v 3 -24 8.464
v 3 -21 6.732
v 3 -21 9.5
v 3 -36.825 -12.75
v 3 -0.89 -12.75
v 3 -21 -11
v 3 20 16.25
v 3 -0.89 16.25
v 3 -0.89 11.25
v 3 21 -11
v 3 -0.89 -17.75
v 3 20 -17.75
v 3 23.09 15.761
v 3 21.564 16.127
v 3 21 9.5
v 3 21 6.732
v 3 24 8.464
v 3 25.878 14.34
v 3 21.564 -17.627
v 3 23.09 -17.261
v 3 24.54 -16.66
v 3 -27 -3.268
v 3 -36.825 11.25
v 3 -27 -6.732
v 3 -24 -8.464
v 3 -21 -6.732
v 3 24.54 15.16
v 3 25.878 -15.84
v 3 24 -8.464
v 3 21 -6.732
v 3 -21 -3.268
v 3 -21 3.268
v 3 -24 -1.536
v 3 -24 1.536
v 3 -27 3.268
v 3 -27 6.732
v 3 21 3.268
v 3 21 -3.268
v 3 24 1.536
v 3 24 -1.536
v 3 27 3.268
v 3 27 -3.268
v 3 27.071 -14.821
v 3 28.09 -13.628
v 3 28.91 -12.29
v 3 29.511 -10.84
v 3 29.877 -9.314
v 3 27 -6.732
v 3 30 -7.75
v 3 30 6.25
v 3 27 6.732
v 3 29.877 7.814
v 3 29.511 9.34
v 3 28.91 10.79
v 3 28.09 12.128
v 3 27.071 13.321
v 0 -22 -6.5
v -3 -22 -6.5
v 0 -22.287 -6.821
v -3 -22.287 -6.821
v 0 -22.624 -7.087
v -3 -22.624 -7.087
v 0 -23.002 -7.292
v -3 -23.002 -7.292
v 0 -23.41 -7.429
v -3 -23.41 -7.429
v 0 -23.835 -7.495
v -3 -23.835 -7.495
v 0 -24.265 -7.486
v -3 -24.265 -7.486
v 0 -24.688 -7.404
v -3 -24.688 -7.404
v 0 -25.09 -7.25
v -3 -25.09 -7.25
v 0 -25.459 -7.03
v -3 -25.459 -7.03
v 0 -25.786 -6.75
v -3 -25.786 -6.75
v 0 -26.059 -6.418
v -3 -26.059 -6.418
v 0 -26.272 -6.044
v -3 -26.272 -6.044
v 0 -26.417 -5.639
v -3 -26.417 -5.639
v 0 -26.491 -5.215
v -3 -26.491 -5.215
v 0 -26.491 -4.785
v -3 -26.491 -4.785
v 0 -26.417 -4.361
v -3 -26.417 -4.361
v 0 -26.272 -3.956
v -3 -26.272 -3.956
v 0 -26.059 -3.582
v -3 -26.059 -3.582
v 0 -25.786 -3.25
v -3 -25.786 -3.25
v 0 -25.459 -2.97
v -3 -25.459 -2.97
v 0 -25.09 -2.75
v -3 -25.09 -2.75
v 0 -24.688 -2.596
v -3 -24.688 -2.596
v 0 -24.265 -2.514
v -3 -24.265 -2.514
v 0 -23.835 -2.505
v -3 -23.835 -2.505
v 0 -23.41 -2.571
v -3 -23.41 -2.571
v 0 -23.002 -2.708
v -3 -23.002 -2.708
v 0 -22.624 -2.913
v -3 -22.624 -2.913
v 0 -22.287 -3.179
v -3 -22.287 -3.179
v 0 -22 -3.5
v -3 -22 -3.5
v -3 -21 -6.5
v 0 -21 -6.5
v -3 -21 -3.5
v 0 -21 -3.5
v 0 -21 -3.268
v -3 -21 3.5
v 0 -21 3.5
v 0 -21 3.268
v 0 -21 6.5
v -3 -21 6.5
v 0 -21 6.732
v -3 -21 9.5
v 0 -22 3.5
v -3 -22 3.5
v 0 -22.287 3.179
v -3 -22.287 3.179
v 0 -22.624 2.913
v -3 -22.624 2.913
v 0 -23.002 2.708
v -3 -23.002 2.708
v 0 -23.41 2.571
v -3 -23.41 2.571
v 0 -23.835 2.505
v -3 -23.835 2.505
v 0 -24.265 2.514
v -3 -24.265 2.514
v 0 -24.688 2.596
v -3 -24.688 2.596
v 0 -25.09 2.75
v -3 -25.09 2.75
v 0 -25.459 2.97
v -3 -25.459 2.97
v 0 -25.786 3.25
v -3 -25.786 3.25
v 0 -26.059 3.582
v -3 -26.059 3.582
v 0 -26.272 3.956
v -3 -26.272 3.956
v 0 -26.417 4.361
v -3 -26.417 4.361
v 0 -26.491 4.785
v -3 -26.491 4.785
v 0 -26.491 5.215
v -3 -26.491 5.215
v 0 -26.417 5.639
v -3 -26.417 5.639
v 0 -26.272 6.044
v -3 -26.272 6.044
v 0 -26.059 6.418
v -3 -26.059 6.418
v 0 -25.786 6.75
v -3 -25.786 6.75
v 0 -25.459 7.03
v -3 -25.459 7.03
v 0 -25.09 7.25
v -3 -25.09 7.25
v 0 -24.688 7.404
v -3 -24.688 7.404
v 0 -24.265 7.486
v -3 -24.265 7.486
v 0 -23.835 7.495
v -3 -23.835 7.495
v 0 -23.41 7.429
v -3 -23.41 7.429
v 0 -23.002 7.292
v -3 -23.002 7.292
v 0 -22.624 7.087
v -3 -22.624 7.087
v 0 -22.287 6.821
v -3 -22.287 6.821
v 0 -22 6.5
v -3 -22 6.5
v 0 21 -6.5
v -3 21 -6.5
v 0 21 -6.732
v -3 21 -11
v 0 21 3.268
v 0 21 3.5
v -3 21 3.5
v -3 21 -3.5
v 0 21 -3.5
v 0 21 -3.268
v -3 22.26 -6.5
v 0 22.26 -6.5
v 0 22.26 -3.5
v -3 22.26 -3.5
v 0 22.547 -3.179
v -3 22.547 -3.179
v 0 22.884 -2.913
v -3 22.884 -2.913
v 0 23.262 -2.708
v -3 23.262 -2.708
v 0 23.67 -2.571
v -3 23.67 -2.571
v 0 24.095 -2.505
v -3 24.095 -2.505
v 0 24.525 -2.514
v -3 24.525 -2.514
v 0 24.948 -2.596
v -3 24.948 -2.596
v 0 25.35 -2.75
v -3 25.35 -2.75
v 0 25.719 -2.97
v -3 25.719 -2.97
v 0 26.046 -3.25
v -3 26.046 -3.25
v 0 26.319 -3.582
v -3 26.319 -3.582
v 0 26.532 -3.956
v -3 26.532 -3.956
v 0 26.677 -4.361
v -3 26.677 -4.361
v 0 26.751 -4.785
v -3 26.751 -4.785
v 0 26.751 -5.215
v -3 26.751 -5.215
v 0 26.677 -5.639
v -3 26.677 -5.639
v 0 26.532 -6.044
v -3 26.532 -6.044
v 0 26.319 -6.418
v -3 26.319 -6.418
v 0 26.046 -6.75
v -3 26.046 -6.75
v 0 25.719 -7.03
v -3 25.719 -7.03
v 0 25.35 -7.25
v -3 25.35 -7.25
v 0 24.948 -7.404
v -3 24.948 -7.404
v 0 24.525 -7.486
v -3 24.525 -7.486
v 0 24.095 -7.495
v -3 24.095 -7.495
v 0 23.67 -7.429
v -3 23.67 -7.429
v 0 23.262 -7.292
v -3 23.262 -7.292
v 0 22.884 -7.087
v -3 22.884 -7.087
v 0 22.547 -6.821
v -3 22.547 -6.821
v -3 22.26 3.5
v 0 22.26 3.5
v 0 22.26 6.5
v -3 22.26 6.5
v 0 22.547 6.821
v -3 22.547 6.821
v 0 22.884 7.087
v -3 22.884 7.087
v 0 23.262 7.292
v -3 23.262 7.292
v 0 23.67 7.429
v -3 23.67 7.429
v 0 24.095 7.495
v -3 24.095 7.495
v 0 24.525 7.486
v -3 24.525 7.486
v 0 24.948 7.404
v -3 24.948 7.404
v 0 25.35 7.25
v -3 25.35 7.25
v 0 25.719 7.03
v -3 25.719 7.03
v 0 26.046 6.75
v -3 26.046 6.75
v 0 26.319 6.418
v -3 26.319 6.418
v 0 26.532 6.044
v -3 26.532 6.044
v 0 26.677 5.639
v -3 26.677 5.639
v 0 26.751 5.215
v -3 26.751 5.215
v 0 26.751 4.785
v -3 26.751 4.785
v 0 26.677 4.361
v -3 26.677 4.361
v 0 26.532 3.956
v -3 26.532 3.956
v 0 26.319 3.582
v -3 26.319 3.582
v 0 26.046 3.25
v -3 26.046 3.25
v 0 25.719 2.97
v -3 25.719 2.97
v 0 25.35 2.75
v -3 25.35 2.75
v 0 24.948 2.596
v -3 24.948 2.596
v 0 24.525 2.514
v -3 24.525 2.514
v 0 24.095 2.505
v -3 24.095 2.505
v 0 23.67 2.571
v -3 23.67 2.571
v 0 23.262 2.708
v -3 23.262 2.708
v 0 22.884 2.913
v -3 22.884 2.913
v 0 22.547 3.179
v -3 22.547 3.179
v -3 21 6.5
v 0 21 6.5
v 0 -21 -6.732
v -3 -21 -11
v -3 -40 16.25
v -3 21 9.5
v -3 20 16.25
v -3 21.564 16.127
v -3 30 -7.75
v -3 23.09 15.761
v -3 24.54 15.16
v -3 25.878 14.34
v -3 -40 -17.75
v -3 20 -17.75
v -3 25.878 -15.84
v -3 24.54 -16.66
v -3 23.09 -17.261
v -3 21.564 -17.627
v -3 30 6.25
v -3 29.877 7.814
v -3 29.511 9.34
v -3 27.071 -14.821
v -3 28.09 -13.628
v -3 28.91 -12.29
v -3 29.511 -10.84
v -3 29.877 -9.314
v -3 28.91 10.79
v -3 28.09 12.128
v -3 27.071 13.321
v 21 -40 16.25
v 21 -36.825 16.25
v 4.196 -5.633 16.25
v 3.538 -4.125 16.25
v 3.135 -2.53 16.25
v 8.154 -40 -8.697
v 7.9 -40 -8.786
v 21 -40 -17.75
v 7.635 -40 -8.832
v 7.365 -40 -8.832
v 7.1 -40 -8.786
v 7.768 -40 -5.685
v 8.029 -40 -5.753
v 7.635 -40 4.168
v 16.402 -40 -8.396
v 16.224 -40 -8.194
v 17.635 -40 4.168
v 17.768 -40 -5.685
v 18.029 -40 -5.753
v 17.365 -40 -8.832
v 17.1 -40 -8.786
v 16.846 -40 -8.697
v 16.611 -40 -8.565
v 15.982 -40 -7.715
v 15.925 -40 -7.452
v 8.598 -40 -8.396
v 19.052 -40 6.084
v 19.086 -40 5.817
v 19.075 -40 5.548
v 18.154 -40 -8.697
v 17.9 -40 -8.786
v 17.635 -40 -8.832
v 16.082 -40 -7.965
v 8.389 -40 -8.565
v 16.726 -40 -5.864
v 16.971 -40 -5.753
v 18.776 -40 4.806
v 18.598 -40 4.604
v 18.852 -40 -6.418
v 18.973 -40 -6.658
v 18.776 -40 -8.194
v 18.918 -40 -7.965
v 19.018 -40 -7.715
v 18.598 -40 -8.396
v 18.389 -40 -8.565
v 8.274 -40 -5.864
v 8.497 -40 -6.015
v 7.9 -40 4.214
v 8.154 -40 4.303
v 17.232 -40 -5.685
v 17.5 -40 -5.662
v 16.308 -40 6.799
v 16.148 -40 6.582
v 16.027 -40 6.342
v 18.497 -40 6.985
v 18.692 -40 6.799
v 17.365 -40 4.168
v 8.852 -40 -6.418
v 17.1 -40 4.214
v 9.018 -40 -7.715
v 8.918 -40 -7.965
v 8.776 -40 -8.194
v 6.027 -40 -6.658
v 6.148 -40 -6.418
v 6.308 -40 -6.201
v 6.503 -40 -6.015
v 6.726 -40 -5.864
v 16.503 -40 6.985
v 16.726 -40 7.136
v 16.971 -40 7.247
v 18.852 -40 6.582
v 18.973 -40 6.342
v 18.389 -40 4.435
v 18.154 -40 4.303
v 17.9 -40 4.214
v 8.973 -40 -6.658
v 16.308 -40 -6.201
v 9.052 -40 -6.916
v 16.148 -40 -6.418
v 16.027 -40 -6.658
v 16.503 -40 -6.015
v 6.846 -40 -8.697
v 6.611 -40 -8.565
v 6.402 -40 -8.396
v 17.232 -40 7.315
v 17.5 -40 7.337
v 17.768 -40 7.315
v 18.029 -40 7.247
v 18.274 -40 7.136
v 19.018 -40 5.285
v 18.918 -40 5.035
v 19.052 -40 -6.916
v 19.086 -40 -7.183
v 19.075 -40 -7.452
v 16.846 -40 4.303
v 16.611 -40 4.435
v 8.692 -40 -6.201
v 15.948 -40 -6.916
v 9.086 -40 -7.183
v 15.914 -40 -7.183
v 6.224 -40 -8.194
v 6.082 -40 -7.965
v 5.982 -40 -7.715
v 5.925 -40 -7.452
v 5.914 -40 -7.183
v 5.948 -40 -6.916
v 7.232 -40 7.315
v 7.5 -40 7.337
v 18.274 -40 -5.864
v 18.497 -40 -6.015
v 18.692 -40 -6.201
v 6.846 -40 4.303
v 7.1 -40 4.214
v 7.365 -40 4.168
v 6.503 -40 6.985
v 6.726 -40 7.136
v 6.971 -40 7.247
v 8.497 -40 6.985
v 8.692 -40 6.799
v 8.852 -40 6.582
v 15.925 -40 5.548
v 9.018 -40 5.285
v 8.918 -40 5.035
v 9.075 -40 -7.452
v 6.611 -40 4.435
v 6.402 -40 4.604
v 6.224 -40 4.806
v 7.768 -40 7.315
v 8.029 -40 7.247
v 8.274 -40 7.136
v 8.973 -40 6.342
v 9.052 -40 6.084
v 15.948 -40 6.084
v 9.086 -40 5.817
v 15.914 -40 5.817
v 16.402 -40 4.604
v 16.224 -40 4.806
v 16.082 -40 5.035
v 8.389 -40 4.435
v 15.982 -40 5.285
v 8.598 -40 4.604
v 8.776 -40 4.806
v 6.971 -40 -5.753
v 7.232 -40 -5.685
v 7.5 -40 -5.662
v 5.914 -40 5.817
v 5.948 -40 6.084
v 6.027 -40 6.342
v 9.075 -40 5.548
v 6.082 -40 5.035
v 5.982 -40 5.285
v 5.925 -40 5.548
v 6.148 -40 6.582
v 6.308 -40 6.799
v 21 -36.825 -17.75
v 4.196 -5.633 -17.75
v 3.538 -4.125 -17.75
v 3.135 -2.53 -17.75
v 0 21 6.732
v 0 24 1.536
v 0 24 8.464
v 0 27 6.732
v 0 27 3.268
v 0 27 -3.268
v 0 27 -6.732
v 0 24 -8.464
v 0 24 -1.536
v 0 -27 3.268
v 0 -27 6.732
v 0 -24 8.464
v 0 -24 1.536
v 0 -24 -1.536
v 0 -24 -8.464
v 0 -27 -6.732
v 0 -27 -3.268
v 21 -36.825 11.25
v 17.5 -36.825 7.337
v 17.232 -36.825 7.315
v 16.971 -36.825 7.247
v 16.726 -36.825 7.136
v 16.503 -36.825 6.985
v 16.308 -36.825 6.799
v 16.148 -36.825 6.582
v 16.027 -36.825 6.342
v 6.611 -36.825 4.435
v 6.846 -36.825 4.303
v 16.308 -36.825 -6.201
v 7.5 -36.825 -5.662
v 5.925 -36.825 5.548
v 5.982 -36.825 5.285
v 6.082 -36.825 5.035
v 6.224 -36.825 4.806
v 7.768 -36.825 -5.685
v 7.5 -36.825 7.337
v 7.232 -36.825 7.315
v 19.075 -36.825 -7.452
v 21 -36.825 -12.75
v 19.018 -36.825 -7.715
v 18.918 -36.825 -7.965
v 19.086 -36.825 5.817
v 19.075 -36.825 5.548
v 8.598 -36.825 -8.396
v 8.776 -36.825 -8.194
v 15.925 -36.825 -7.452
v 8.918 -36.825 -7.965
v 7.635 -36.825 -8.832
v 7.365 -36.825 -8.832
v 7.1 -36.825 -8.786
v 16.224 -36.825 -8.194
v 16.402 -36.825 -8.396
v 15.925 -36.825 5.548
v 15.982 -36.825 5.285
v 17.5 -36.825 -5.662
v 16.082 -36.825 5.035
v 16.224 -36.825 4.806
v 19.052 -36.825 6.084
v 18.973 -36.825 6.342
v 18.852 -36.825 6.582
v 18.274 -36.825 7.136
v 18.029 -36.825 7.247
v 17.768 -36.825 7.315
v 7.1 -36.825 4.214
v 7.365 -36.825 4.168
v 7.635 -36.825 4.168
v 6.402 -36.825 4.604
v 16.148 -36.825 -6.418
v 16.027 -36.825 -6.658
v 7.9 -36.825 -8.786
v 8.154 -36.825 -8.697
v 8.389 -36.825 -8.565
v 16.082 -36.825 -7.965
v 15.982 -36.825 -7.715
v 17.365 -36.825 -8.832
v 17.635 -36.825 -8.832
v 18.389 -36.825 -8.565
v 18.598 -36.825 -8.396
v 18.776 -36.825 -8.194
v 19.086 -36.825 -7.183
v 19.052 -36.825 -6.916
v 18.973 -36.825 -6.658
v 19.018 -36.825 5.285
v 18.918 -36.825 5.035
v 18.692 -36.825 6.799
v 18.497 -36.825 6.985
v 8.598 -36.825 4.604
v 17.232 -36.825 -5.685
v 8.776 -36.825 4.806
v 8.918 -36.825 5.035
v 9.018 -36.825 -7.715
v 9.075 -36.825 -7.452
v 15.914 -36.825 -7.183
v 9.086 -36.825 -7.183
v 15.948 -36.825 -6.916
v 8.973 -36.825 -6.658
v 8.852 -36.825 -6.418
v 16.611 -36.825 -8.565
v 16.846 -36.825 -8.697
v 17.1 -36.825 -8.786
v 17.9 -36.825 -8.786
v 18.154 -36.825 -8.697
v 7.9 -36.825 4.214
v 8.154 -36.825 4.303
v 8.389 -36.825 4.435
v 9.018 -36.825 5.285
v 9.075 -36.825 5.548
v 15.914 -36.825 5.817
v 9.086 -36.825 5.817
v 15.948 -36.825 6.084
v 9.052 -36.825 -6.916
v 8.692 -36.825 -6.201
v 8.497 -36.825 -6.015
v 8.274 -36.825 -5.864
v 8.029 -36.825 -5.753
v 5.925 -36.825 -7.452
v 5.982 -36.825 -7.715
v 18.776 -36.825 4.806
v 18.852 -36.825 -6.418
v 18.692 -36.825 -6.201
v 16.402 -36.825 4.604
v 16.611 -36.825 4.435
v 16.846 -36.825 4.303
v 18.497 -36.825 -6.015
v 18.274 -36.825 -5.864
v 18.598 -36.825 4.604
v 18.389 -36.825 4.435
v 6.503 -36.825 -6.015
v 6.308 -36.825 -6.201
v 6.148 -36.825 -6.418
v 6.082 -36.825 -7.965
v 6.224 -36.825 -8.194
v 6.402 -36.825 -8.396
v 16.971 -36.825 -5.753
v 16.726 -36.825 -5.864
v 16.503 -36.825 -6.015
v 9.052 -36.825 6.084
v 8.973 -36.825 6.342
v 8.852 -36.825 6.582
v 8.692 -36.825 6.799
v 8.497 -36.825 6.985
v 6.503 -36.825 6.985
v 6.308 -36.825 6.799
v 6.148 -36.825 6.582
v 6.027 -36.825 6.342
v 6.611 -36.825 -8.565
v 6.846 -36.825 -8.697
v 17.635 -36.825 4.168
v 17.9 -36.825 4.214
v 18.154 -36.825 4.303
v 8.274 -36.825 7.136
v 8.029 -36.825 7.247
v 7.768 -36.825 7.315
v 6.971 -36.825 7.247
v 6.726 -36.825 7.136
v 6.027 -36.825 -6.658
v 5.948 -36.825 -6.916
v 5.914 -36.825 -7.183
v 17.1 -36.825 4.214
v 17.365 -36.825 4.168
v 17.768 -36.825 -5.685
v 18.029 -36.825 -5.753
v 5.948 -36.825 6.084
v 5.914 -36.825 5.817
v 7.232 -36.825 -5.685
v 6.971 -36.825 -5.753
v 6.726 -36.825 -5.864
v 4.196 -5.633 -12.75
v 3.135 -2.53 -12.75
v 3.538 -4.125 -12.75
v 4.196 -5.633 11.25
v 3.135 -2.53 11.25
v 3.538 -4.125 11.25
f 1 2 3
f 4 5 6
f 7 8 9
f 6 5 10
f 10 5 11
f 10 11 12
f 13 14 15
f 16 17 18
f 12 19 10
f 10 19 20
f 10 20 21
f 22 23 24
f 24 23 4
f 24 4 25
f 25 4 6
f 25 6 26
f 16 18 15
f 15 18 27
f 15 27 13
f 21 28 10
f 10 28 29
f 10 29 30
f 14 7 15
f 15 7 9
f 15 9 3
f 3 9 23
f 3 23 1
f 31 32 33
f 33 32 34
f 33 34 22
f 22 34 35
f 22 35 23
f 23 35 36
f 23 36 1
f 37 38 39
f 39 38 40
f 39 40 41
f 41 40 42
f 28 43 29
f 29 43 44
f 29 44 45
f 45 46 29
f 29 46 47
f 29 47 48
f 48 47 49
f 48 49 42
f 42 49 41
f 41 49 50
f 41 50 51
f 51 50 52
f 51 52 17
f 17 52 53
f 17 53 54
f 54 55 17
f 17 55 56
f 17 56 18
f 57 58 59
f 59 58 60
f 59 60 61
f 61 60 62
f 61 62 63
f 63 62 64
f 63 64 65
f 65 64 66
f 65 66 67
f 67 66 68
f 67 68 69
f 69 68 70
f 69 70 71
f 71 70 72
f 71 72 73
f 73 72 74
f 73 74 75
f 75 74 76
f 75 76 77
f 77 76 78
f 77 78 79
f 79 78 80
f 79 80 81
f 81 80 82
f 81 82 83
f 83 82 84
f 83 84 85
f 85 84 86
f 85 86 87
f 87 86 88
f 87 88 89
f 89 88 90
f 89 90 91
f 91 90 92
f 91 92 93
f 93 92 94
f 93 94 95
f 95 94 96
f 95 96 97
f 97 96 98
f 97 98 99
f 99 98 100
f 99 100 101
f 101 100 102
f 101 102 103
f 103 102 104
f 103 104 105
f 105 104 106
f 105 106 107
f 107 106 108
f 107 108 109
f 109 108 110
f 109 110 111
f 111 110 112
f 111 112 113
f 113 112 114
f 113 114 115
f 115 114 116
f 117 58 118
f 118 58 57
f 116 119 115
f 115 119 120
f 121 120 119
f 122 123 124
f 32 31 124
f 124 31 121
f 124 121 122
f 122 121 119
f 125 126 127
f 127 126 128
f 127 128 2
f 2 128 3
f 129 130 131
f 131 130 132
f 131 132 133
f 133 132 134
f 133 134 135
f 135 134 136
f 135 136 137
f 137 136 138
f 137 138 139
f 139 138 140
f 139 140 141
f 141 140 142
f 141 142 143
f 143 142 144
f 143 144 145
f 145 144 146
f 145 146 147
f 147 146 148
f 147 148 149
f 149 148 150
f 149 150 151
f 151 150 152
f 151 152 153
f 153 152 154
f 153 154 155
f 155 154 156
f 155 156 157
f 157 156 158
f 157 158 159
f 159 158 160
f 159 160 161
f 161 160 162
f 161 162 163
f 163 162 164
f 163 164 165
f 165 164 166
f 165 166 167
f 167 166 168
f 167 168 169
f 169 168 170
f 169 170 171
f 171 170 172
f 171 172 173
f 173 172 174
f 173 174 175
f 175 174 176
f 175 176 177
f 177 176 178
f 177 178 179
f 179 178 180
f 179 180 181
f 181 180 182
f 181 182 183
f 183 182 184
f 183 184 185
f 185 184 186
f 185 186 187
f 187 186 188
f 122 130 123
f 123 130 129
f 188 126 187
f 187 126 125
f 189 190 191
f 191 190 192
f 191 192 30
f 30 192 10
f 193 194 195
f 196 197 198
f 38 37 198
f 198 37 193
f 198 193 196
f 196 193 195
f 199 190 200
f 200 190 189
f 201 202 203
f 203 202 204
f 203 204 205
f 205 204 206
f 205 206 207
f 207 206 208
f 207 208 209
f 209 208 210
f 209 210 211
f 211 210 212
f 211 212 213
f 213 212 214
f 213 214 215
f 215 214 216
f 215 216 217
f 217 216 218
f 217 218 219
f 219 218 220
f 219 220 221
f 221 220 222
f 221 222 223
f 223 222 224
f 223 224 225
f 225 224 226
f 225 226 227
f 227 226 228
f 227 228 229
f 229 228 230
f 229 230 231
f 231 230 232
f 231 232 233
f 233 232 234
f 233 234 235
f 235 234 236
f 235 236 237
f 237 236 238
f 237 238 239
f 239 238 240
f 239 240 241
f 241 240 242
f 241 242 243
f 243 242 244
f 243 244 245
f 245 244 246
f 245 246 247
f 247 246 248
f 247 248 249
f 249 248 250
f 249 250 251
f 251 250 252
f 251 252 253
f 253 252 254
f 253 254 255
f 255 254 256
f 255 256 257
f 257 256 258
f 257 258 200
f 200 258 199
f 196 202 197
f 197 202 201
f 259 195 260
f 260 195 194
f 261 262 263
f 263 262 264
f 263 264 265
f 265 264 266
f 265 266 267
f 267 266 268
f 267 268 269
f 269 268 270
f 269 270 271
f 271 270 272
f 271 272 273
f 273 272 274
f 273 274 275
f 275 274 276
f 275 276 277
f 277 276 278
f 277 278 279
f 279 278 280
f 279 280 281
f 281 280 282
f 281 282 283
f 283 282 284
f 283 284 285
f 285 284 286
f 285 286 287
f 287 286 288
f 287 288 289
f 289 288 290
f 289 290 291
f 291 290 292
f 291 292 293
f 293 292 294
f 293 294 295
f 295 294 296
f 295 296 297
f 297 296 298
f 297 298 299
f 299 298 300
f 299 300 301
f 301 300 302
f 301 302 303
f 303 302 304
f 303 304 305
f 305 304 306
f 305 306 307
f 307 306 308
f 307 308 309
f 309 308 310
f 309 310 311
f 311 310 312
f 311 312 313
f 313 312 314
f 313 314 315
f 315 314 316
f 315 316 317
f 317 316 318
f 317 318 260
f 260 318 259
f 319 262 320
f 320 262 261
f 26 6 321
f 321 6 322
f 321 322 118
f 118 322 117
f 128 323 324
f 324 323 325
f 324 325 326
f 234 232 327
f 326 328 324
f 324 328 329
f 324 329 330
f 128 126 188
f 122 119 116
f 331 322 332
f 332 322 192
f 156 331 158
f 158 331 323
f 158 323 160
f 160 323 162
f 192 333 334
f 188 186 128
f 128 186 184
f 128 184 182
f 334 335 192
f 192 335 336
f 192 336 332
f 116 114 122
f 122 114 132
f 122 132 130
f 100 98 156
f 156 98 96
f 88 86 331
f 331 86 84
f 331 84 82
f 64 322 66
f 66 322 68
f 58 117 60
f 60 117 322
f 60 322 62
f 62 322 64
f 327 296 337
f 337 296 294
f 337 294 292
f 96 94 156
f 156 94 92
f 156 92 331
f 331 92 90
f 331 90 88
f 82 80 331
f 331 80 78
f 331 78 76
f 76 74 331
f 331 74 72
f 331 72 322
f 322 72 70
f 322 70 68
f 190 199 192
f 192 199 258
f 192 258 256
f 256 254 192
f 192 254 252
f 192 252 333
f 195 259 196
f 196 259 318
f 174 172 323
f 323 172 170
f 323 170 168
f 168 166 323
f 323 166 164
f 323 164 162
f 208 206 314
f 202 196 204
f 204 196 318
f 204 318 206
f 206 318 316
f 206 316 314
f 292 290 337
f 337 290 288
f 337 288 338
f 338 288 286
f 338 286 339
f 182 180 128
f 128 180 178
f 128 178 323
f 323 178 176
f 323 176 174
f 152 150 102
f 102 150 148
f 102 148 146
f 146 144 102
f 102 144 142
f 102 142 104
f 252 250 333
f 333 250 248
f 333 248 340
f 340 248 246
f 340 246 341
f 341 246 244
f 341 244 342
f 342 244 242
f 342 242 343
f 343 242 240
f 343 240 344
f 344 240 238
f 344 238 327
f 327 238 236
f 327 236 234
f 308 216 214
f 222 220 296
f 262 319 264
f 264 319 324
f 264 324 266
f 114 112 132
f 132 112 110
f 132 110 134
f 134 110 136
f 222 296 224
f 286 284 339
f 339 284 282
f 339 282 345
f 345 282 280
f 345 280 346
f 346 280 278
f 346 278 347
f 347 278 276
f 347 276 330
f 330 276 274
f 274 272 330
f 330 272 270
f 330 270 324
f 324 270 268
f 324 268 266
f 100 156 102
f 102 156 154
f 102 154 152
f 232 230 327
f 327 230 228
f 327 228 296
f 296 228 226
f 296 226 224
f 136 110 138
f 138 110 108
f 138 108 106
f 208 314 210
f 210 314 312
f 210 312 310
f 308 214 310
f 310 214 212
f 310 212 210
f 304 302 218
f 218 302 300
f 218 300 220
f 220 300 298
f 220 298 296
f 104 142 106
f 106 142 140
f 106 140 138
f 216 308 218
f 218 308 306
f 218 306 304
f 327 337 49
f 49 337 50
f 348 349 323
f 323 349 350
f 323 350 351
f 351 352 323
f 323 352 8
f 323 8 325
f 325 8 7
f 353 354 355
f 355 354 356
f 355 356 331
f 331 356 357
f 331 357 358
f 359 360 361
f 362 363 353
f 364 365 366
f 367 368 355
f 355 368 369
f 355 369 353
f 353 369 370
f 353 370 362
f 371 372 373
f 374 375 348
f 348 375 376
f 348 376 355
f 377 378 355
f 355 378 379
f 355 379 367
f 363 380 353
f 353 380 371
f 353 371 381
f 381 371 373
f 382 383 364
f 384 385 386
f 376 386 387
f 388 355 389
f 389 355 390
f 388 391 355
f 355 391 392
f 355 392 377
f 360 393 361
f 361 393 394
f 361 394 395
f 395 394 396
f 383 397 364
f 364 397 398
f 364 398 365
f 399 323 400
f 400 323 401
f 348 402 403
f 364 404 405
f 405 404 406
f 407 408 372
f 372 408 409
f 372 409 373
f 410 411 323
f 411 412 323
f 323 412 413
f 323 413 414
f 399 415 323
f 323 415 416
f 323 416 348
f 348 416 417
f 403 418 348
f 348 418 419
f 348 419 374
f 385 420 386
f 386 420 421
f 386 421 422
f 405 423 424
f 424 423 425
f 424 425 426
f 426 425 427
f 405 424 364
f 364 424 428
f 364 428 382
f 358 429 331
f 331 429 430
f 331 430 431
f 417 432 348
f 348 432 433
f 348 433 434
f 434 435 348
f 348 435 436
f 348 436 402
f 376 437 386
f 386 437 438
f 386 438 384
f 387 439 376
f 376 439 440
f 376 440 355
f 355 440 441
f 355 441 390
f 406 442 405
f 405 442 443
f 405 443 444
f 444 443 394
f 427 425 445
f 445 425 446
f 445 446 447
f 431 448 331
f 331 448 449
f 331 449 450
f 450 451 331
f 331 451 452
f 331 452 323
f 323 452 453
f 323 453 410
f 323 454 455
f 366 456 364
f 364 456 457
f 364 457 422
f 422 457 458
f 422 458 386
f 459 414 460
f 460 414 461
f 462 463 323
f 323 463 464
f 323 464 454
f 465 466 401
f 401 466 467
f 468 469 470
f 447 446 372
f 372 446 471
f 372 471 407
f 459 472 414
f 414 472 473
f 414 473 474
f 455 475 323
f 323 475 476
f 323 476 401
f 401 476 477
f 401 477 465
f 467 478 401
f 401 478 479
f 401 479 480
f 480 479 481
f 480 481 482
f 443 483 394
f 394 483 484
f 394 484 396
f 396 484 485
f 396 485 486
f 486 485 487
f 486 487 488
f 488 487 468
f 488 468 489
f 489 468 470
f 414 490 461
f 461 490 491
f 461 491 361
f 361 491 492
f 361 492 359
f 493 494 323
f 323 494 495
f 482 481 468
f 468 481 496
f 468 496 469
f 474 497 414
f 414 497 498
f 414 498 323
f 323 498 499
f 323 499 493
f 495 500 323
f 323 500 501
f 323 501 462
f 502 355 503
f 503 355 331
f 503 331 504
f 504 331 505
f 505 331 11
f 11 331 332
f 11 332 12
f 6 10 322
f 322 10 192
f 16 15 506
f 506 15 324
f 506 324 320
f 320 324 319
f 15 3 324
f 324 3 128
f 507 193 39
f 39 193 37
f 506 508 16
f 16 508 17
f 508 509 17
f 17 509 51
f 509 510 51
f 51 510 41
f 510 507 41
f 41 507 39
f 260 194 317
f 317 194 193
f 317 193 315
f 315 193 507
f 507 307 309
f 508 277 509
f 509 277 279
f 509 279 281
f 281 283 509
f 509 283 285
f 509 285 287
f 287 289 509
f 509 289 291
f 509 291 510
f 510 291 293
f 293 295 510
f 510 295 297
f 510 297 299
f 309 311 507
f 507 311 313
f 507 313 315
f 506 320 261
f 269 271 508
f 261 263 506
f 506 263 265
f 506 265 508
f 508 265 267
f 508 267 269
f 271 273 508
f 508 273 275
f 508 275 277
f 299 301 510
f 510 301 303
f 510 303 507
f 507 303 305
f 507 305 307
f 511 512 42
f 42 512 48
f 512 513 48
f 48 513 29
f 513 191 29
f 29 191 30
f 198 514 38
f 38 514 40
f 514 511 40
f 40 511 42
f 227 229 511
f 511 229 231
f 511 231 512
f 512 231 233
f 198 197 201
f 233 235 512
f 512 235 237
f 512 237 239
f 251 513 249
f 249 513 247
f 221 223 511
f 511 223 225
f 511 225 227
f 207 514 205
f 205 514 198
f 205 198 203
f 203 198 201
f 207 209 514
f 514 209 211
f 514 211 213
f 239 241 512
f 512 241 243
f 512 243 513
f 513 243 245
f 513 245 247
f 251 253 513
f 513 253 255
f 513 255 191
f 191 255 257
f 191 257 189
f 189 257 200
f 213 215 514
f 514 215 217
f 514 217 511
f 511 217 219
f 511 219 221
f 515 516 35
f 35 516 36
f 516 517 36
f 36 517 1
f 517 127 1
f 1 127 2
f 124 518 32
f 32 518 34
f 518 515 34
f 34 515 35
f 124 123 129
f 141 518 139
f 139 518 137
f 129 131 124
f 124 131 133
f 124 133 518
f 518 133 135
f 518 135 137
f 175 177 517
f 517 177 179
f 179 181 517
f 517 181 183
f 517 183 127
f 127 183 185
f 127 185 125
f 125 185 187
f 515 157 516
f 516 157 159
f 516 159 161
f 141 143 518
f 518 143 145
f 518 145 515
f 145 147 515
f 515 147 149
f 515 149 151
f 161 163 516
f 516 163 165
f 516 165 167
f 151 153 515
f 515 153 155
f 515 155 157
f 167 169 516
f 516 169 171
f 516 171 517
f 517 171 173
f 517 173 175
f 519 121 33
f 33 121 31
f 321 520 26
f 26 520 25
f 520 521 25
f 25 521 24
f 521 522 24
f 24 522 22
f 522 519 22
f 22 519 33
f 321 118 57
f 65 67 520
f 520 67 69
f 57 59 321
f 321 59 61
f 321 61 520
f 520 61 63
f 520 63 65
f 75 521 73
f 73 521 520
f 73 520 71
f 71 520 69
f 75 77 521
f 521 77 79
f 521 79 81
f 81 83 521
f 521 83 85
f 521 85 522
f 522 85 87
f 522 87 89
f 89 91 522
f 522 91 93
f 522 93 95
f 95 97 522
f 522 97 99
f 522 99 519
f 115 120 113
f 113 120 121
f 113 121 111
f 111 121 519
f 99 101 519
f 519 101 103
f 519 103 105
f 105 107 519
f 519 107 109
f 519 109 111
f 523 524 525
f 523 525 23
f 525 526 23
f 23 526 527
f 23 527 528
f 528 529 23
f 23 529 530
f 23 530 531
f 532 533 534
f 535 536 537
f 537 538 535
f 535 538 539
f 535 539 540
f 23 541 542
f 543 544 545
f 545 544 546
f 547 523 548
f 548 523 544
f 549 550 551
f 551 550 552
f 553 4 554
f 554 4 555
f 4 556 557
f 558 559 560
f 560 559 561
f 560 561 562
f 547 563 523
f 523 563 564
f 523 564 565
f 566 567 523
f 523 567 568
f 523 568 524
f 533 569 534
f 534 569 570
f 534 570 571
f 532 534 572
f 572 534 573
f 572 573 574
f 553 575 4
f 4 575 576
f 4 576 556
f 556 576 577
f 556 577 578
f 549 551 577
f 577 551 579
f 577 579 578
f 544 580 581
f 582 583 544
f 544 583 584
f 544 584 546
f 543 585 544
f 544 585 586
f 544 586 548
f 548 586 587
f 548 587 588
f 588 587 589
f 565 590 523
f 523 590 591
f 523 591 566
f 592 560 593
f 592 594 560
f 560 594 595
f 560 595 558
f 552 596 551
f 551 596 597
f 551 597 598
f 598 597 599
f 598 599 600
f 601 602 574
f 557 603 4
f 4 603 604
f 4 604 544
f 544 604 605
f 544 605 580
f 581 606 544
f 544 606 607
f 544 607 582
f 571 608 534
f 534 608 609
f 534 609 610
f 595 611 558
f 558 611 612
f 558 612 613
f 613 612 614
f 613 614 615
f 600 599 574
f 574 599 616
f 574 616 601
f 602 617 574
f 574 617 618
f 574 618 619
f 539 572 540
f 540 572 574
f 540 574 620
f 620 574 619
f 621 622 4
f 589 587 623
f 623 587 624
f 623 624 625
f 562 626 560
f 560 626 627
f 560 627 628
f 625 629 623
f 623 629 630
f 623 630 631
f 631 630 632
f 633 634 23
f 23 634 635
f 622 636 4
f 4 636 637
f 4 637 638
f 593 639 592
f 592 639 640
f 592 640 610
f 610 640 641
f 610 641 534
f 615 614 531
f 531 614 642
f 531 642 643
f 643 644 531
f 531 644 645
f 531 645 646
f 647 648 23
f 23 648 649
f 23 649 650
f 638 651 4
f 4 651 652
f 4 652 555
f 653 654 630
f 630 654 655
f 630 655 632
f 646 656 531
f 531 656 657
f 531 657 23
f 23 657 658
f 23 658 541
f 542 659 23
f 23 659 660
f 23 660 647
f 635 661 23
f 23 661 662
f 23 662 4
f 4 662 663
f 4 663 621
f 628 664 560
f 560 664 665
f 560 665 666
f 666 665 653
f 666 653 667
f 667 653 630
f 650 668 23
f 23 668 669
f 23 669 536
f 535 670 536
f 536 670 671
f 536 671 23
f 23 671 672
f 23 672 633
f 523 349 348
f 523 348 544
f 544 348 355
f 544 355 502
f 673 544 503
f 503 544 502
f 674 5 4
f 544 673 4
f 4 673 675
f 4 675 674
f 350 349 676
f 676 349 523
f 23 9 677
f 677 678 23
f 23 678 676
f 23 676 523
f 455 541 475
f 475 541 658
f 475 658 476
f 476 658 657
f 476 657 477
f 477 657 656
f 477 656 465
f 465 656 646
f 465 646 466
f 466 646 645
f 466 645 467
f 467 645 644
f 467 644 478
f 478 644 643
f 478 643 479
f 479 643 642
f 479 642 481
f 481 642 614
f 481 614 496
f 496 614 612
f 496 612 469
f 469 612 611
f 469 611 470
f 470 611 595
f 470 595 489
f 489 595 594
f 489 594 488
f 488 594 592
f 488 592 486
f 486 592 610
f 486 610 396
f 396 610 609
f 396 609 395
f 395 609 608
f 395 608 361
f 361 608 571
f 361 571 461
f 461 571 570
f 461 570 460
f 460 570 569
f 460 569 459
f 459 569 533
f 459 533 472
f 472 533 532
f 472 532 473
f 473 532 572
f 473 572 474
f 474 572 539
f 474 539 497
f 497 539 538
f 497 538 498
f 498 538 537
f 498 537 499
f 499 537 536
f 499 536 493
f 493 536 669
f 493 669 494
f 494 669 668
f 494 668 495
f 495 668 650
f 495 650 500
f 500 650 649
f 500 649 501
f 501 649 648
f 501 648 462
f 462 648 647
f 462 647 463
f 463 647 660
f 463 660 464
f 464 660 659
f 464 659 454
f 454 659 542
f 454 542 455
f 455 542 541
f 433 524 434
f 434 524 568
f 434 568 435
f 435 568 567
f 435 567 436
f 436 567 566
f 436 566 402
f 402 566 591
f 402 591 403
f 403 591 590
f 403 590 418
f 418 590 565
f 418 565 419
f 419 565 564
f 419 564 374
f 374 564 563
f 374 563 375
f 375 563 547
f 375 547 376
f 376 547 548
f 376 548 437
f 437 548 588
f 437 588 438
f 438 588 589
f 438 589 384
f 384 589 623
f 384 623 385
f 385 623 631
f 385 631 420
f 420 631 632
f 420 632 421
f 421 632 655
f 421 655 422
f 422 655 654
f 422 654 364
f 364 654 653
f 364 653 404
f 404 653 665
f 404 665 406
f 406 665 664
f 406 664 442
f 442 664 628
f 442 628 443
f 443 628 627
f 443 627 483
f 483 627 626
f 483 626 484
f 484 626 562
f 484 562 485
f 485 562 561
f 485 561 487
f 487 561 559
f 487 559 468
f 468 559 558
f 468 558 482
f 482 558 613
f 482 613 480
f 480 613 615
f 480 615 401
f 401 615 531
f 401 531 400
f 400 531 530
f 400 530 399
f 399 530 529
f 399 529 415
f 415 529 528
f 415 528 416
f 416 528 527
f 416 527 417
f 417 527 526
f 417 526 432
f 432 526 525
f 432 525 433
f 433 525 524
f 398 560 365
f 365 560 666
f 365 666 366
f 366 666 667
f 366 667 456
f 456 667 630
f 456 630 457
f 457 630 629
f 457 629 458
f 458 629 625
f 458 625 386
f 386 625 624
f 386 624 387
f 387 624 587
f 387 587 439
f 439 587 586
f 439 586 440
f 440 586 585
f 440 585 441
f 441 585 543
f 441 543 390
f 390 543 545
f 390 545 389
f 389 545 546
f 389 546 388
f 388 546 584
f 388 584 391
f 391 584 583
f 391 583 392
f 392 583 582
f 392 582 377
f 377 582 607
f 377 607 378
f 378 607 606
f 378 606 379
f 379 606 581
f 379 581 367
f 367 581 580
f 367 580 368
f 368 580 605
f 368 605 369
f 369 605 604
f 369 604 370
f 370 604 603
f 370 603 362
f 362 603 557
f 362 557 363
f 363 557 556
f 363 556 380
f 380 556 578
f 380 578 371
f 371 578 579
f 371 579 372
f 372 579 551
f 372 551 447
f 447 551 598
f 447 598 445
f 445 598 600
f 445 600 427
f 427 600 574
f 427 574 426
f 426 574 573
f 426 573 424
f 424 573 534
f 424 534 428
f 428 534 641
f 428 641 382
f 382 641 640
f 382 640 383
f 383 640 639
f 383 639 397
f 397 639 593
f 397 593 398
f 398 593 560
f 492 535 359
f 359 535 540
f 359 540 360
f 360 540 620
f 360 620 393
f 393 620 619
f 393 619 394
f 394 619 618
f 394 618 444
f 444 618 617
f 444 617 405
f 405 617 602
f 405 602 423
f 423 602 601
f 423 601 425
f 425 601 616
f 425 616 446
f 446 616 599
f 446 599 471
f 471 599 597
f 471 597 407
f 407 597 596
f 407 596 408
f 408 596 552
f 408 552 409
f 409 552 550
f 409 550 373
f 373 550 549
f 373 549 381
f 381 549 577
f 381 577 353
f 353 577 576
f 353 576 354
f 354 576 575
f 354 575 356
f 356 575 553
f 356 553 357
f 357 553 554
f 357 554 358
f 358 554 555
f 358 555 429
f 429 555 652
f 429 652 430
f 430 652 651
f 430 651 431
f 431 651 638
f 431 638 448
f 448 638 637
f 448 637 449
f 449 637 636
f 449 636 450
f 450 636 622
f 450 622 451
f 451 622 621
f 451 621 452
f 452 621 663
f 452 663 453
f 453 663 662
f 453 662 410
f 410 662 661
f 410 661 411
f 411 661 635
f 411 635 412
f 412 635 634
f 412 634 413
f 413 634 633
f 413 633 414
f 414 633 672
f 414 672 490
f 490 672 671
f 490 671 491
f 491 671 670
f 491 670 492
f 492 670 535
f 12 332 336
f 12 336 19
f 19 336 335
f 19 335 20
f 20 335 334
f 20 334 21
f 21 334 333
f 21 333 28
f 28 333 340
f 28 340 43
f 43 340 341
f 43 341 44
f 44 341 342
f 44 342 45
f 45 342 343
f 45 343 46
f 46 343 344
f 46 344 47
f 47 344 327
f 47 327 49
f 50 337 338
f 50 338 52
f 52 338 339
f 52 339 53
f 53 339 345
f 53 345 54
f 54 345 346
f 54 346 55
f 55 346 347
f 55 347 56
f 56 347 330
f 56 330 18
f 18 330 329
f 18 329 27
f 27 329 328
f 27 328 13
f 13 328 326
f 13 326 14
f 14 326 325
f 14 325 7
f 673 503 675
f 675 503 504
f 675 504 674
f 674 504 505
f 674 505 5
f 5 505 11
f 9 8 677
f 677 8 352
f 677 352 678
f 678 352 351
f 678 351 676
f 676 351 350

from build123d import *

# Parameters (mm, degrees)
SKETCH1_W                    = 34
SKETCH1_H                    = 70
SKETCH1_W_2                  = 20.5
SKETCH1_H_2                  = 42
BOSS_EXTRUDE1_DEPTH          = 3
CUT_EXTRUDE1_DEPTH           = 45.170833137
CUT_EXTRUDE2_START           = -3
CUT_EXTRUDE2_DEPTH           = 3
SKETCH4_W                    = 24
SKETCH4_H                    = 34
BOSS_EXTRUDE2_DEPTH          = 3.175
BOSS_EXTRUDE3_DEPTH          = 5
BOSS_EXTRUDE4_DEPTH          = 5
F_1_8_0_125_DIAMETER_HOLE1_D = 3.175
FILLET1_R                    = 10
FILLET2_R                    = 10


with BuildPart() as part:
    # Sketch1 → Boss-Extrude1 (new, symmetric)
    with BuildSketch(Plane(origin=(0, 0, 0), x_dir=(0, 0, -1), z_dir=(1, 0, 0))):
        with Locations((0.75, -5)):
            Rectangle(SKETCH1_W, SKETCH1_H)
        with Locations((0.75, 0)):
            Rectangle(SKETCH1_W_2, SKETCH1_H_2, mode=Mode.SUBTRACT)
    extrude(amount=BOSS_EXTRUDE1_DEPTH, both=True)

    # Sketch2 → Cut-Extrude1 (cut, through all)
    with BuildSketch(Plane.ZY.offset(3)):
        with BuildLine():
            Line((3.5, -21), (6.5, -21))
            Line((6.5, -21), (6.5, -22))
            ThreePointArc((6.5, -22), (5, -26.5), (3.5, -22))
            Line((3.5, -22), (3.5, -21))
        make_face()
        with BuildLine():
            Line((-6.5, -21), (-3.5, -21))
            Line((-3.5, -21), (-3.5, -22))
            ThreePointArc((-3.5, -22), (-5, -26.5), (-6.5, -22))
            Line((-6.5, -22), (-6.5, -21))
        make_face()
        with BuildLine():
            Line((6.5, 21), (6.5, 22.26))
            ThreePointArc((6.5, 22.26), (5, 26.76), (3.5, 22.26))
            Line((3.5, 22.26), (3.5, 21))
            Line((3.5, 21), (6.5, 21))
        make_face()
        with BuildLine():
            Line((-3.5, 21), (-3.5, 22.26))
            ThreePointArc((-3.5, 22.26), (-5, 26.76), (-6.5, 22.26))
            Line((-6.5, 22.26), (-6.5, 21))
            Line((-6.5, 21), (-3.5, 21))
        make_face()
    extrude(amount=-CUT_EXTRUDE1_DEPTH, mode=Mode.SUBTRACT)

    # Sketch3 → Cut-Extrude2 (cut)
    with BuildSketch(Plane(origin=(3, 0, 0), x_dir=(0, 0, -1), z_dir=(1, 0, 0)).offset(CUT_EXTRUDE2_START)):
        Polygon((-1.535898385, 24), (-3.267949192, 27), (-6.732050808, 27), (-8.464101615, 24), (-6.732050808, 21), (-3.267949192, 21), align=None)
        Polygon((3.267949192, 27), (1.535898385, 24), (3.267949192, 21), (6.732050808, 21), (8.464101615, 24), (6.732050808, 27), align=None)
        with BuildLine():
            Line((1.535898385, -24), (3.267949192, -27))
            Line((3.267949192, -27), (6.732050808, -27))
            Line((6.732050808, -27), (8.464101615, -24))
            Line((8.464101615, -24), (6.732050808, -21))
            Line((6.732050808, -21), (6.5, -21))
            Line((6.5, -21), (6.5, -22))
            ThreePointArc((6.5, -22), (5, -26.5), (3.5, -22))
            Line((3.5, -22), (3.5, -21))
            Line((3.5, -21), (3.267949192, -21))
            Line((3.267949192, -21), (1.535898385, -24))
        make_face()
        with BuildLine():
            Line((-1.535898385, -24), (-3.267949192, -21))
            Line((-3.267949192, -21), (-3.5, -21))
            Line((-3.5, -21), (-3.5, -22))
            ThreePointArc((-3.5, -22), (-5, -26.5), (-6.5, -22))
            Line((-6.5, -22), (-6.5, -21))
            Line((-6.5, -21), (-6.732050808, -21))
            Line((-6.732050808, -21), (-8.464101615, -24))
            Line((-8.464101615, -24), (-6.732050808, -27))
            Line((-6.732050808, -27), (-3.267949192, -27))
            Line((-3.267949192, -27), (-1.535898385, -24))
        make_face()
    extrude(amount=CUT_EXTRUDE2_DEPTH, mode=Mode.SUBTRACT)

    # Sketch4 → Boss-Extrude2 (add)
    with BuildSketch(Plane.XZ.offset(40)):
        with Locations((9, -0.75)):
            Rectangle(SKETCH4_W, SKETCH4_H)
    extrude(amount=-BOSS_EXTRUDE2_DEPTH)

    # Sketch5 → Boss-Extrude3 (add)
    with BuildSketch(Plane(origin=(0, 0, -17.75), x_dir=(-1, 0, 0), z_dir=(0, 0, -1))):
        Polygon((-3, -36.825), (-21, -36.825), (-3, -3.4125), align=None)
    extrude(amount=-BOSS_EXTRUDE3_DEPTH)

    # Sketch6 → Boss-Extrude4 (add)
    with BuildSketch(Plane.XY.offset(16.25)):
        Polygon((21, -36.825), (3, -36.825), (3, -3.4125), align=None)
    extrude(amount=-BOSS_EXTRUDE4_DEPTH)

    # 1/8 (0.125) Diameter Hole1 (through all)
    with Locations(Plane(origin=(0, -36.825, 0), x_dir=(1, 0, 0), z_dir=(0, 1, 0))):
        with Locations((7.5, 7.25), (17.5, 7.25), (17.5, -5.75), (7.5, -5.75)):
            Hole(F_1_8_0_125_DIAMETER_HOLE1_D / 2)

    # Fillet1
    fillet1_edges = [part.edges().sort_by_distance(p)[0] for p in [
        (0, 30, -17.75),
        (0, 30, 16.25),
    ]]
    fillet(fillet1_edges, radius=FILLET1_R)

    # Fillet2
    fillet2_edges = [part.edges().sort_by_distance(p)[0] for p in [
        (3, -3.4125, -15.25),
        (3, -3.4125, 13.75),
    ]]
    fillet(fillet2_edges, radius=FILLET2_R)


solid = part.part
